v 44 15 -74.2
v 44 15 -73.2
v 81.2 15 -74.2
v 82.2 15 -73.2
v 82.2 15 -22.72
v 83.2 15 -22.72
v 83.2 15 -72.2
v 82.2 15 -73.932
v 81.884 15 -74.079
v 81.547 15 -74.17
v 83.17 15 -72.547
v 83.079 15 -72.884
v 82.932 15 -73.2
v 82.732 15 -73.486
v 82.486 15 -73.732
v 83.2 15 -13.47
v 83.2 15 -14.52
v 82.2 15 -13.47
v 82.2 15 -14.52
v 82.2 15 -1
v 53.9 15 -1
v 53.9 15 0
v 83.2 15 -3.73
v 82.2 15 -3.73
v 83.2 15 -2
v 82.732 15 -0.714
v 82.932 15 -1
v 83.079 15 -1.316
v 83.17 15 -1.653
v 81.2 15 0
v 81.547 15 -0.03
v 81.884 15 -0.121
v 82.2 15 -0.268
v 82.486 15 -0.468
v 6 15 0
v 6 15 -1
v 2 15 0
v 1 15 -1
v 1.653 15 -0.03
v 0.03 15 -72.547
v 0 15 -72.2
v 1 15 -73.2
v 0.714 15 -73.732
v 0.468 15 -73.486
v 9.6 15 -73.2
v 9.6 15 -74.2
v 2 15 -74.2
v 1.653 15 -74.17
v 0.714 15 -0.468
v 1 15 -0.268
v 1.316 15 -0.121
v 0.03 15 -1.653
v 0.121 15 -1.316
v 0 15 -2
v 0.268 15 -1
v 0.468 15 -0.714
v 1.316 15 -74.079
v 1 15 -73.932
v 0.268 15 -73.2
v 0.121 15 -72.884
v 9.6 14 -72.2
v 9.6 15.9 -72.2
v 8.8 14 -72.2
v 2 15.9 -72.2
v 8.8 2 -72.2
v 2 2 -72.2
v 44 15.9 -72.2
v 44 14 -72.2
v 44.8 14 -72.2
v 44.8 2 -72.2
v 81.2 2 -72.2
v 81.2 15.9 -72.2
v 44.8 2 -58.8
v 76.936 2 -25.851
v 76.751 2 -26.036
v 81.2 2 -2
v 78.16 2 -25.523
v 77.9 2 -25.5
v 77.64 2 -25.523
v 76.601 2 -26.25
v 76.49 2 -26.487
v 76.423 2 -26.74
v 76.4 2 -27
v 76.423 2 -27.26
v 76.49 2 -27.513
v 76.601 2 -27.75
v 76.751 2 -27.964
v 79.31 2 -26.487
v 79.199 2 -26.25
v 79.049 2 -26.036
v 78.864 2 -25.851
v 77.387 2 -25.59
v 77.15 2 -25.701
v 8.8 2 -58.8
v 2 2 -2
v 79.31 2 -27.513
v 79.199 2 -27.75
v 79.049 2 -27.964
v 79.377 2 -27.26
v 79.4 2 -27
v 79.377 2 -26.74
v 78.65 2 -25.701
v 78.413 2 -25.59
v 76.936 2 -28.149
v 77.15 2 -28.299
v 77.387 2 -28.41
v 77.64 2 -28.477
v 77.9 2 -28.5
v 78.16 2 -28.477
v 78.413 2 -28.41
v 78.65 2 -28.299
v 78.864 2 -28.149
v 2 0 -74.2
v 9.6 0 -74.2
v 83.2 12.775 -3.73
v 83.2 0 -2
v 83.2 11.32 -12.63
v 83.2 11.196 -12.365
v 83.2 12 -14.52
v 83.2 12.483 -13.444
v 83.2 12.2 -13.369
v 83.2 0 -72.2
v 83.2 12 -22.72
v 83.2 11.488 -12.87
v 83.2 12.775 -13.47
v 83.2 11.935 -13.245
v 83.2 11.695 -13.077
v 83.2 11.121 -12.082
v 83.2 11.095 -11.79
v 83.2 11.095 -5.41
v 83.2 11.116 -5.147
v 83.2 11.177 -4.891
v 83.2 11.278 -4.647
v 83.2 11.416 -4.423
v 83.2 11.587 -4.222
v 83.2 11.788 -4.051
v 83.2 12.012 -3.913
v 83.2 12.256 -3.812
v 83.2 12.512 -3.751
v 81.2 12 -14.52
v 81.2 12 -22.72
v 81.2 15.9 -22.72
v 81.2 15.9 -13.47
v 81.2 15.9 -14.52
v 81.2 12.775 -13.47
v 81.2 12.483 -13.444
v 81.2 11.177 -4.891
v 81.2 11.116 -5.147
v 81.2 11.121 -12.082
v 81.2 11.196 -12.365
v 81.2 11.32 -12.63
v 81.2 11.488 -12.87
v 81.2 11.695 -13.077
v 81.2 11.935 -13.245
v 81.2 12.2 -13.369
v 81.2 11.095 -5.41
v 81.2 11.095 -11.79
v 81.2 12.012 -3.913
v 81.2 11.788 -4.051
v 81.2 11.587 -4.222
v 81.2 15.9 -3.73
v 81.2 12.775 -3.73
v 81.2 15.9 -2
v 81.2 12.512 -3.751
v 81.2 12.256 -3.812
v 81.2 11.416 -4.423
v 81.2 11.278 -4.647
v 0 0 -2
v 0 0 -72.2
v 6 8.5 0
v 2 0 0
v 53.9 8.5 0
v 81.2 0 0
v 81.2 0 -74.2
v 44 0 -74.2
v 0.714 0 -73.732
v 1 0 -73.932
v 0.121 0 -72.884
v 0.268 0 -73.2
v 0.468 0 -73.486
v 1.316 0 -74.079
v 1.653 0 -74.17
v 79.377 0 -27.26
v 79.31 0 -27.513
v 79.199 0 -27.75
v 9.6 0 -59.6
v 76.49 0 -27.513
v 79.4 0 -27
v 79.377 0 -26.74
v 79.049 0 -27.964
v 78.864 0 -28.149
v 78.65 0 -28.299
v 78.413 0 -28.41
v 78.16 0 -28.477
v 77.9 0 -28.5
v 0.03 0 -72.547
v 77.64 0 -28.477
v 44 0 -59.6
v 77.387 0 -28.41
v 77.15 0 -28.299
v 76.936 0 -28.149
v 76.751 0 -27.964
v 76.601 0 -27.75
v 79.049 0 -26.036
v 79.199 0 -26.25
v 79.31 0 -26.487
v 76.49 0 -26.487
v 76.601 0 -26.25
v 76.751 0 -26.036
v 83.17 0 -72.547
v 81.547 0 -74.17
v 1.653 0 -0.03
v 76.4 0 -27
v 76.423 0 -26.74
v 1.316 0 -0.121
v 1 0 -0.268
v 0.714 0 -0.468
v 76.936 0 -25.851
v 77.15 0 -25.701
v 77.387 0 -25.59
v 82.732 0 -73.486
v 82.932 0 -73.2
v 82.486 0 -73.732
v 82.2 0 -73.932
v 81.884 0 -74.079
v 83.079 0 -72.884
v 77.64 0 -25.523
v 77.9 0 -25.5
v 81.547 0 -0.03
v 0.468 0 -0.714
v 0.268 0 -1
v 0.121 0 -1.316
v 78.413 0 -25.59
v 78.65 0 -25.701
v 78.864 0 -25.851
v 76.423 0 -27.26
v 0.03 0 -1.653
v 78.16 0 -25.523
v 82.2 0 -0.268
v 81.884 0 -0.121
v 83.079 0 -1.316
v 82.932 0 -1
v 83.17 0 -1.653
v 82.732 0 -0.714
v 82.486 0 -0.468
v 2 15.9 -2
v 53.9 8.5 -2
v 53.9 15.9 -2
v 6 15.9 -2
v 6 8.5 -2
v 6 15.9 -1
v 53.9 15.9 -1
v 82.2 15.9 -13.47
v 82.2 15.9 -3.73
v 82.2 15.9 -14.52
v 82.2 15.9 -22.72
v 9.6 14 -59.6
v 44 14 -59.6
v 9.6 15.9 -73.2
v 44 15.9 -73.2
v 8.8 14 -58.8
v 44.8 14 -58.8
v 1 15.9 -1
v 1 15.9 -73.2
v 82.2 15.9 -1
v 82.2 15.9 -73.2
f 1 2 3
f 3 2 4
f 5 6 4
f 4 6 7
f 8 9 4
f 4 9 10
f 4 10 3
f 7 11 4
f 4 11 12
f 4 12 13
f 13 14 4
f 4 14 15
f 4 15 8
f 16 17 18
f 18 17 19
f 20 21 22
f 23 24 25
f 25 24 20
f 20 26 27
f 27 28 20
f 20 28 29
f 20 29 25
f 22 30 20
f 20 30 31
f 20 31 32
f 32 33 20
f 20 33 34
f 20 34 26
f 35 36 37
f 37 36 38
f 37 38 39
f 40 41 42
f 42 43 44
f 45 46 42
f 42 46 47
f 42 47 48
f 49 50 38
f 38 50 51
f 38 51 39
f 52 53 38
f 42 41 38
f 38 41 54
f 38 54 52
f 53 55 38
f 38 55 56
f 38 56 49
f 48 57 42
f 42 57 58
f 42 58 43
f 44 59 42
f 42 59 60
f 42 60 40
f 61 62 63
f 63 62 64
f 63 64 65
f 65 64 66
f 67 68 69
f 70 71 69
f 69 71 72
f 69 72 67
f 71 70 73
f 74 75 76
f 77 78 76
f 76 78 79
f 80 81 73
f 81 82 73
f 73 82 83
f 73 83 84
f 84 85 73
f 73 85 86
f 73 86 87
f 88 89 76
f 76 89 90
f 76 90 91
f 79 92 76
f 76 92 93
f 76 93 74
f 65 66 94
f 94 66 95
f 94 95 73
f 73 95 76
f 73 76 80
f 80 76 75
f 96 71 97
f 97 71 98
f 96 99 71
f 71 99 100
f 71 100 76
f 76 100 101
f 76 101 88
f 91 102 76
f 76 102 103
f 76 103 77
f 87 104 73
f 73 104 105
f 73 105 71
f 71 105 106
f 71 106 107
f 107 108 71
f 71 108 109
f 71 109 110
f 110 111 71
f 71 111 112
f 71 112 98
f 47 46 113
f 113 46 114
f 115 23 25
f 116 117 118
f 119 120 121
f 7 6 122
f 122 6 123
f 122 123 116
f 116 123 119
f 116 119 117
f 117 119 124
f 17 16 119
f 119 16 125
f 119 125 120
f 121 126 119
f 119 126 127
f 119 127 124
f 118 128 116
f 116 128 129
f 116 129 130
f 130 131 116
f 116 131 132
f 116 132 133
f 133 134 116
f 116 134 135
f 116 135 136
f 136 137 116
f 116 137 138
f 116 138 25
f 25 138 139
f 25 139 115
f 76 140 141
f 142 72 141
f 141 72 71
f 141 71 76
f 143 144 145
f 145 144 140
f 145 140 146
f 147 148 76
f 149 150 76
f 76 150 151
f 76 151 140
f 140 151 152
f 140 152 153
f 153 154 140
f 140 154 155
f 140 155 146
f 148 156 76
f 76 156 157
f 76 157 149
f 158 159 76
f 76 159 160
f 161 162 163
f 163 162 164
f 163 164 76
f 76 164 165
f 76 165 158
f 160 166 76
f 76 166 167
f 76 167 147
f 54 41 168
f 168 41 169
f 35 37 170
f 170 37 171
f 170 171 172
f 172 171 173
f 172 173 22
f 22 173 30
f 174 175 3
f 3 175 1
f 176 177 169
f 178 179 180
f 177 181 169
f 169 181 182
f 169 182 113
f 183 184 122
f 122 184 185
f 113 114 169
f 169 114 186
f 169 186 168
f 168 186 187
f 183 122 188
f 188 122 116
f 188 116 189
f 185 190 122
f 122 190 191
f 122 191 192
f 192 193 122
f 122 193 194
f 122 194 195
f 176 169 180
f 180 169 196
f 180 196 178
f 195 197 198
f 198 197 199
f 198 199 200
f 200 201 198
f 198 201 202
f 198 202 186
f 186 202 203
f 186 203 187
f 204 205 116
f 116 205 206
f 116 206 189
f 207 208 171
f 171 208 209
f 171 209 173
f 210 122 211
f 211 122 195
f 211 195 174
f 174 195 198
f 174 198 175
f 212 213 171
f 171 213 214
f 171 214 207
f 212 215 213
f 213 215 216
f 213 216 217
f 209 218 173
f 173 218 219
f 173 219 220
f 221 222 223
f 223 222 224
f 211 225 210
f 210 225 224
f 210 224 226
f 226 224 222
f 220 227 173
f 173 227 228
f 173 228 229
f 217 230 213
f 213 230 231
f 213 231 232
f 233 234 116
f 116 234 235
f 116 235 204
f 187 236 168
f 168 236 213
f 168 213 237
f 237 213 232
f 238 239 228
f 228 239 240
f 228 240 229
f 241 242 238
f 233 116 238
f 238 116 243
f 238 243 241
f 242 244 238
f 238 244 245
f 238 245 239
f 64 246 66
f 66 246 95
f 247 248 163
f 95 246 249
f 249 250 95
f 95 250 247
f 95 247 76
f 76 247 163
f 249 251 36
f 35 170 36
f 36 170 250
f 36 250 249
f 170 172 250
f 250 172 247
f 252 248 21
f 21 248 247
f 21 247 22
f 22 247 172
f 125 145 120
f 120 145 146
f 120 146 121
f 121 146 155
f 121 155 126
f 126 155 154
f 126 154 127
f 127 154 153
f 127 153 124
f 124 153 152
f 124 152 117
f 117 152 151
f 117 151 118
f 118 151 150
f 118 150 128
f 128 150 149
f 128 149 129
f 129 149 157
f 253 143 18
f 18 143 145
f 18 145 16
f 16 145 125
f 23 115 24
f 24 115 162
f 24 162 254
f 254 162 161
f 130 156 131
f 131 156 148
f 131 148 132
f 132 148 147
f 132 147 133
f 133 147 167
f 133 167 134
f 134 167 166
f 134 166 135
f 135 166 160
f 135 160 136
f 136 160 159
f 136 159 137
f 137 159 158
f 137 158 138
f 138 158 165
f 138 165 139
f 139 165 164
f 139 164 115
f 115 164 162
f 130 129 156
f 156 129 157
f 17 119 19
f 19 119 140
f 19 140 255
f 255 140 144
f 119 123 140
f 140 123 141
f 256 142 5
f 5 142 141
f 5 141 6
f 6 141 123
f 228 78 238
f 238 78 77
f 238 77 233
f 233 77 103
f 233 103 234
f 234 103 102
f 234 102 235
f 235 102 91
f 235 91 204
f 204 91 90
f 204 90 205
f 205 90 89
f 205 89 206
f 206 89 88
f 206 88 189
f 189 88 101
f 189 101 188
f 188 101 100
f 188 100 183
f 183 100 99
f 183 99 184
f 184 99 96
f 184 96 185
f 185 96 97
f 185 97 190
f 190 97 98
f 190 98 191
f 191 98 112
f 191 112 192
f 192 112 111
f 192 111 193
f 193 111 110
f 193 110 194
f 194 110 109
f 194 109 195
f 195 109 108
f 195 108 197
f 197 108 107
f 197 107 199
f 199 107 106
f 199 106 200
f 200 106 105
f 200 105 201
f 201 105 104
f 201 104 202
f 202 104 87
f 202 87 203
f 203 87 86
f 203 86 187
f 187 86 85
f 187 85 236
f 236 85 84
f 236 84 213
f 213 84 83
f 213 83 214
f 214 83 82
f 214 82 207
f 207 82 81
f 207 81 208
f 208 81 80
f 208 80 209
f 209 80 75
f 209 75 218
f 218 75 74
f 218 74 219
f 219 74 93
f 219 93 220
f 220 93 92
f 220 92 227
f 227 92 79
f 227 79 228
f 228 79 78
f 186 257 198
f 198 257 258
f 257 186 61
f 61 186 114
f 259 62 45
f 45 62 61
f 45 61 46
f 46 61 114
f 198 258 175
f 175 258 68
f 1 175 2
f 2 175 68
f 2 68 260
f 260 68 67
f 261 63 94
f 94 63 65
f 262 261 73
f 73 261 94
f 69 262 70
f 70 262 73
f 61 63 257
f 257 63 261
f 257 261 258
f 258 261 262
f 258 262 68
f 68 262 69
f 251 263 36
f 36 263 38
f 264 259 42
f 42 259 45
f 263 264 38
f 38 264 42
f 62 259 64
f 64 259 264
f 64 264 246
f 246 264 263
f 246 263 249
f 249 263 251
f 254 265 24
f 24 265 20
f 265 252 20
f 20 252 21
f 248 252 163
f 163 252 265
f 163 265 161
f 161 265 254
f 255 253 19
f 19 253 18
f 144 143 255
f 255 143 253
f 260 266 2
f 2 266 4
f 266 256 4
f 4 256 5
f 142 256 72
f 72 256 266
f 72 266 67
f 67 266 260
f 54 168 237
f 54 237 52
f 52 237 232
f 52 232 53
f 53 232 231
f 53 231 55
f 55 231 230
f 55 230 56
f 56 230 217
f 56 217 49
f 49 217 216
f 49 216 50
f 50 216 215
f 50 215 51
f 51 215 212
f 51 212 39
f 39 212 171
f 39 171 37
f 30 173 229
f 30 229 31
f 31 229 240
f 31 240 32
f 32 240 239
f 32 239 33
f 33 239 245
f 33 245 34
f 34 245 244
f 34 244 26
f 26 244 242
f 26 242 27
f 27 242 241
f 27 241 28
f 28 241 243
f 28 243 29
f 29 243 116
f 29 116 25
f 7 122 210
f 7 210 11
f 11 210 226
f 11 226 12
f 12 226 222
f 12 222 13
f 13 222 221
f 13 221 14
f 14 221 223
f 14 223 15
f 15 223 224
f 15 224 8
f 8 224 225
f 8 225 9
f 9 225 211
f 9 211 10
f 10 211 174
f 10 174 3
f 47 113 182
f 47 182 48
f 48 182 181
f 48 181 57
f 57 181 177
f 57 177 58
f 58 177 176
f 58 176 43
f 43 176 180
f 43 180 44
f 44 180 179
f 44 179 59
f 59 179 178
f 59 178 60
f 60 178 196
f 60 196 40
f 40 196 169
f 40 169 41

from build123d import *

# Parameters (mm, degrees)
SKETCH1_W           = 83.2
SKETCH1_H           = 74.2
BOSS_EXTRUDE1_DEPTH = 15
SHELL1_T            = -2
SKETCH2_W           = 47.9
SKETCH2_H           = 6.5
CUT_EXTRUDE1_DEPTH  = 112.175896668
CUT_EXTRUDE3_DEPTH  = 112.013873007
SKETCH4_W           = 8.2
SKETCH4_H           = 3
CUT_EXTRUDE4_DEPTH  = 112.013873007
SKETCH5_R           = 1.5
CUT_EXTRUDE5_DEPTH  = 113.235823158
SKETCH6_W           = 34.4
SKETCH6_H           = 14.6
CUT_EXTRUDE6_DEPTH  = 113.485021225
BOSS_EXTRUDE2_DEPTH = 12
SKETCH9_W           = 1
SKETCH9_H           = 1.05
EXTRUDE_THIN1_DEPTH = 0.9
FILLET1_R           = 2


with BuildPart() as part:
    # Sketch1 → Boss-Extrude1 (new body)
    with BuildSketch(Plane(origin=(0, 0, 0), x_dir=(1, 0, 0), z_dir=(0, 1, 0))):
        with Locations((41.6, 37.1)):
            Rectangle(SKETCH1_W, SKETCH1_H)
    extrude(amount=BOSS_EXTRUDE1_DEPTH)

    # Shell1
    shell1_openings = [part.faces().sort_by_distance(p)[0] for p in [
        (41.6, 15, -37.1),
    ]]
    offset(amount=SHELL1_T, openings=shell1_openings, kind=Kind.INTERSECTION)

    # Sketch2 → Cut-Extrude1 (cut, through all)
    with BuildSketch(Plane(origin=(0, 0, -2), x_dir=(-1, 0, 0), z_dir=(0, 0, -1))):
        with Locations((-29.95, 11.75)):
            Rectangle(SKETCH2_W, SKETCH2_H)
    extrude(amount=-CUT_EXTRUDE1_DEPTH, mode=Mode.SUBTRACT)

    # Sketch3 → Cut-Extrude3 (cut, through all)
    with BuildSketch(Plane.ZY.offset(-81.2)):
        with BuildLine():
            Line((-13.47, 12.775001119), (-13.47, 13.375))
            Line((-13.47, 13.375), (-13.47, 15))
            Line((-13.47, 15), (-3.73, 15))
            Line((-3.73, 15), (-3.73, 13.375000473))
            Line((-3.73, 13.375000473), (-3.73, 12.774999514))
            ThreePointArc((-3.73, 12.774999514), (-4.222062075, 11.58705914), (-5.410003665, 11.095))
            Line((-5.410003665, 11.095), (-11.79000197, 11.095))
            ThreePointArc((-11.79000197, 11.095), (-12.977940485, 11.5870617), (-13.47, 12.775001119))
        make_face()
    extrude(amount=-CUT_EXTRUDE3_DEPTH, mode=Mode.SUBTRACT)

    # Sketch4 → Cut-Extrude4 (cut, through all)
    with BuildSketch(Plane.ZY.offset(-81.2)):
        with Locations((-18.62, 13.5)):
            Rectangle(SKETCH4_W, SKETCH4_H)
    extrude(amount=-CUT_EXTRUDE4_DEPTH, mode=Mode.SUBTRACT)

    # Sketch5 → Cut-Extrude5 (cut, through all)
    with BuildSketch(Plane(origin=(0, 2, 0), x_dir=(1, 0, 0), z_dir=(0, 1, 0))):
        with Locations(Location((77.9, 27, 0), (0, 0, 270))):
            Circle(SKETCH5_R)
    extrude(amount=-CUT_EXTRUDE5_DEPTH, mode=Mode.SUBTRACT)

    # Sketch6 → Cut-Extrude6 (cut, through all)
    with BuildSketch(Plane.XZ):
        with Locations((26.8, -66.9)):
            Rectangle(SKETCH6_W, SKETCH6_H)
    extrude(amount=-CUT_EXTRUDE6_DEPTH, mode=Mode.SUBTRACT)

    # Sketch7 → Boss-Extrude2 (add)
    with BuildSketch(Plane(origin=(0, 2, 0), x_dir=(1, 0, 0), z_dir=(0, 1, 0))):
        Polygon((44, 72.2), (44, 59.6), (9.6, 59.6), (9.6, 72.2), (8.8, 72.2), (8.8, 58.8), (44.8, 58.8), (44.8, 72.2), align=None)
    extrude(amount=BOSS_EXTRUDE2_DEPTH)

    # Sketch9 → Extrude-Thin1 (add)
    with BuildSketch(Plane(origin=(0, 15, 0), x_dir=(1, 0, 0), z_dir=(0, 1, 0))):
        Polygon((9.6, 72.2), (2, 72.2), (2, 2), (6, 2), (6, 1), (1, 1), (1, 73.2), (9.6, 73.2), align=None)
        Polygon((53.9, 2), (81.2, 2), (81.2, 3.73), (82.2, 3.73), (82.2, 1), (53.9, 1), align=None)
        with Locations((81.7, 13.995)):
            Rectangle(SKETCH9_W, SKETCH9_H)
        Polygon((81.2, 22.72), (81.2, 72.2), (44, 72.2), (44, 73.2), (82.2, 73.2), (82.2, 22.72), align=None)
    extrude(amount=EXTRUDE_THIN1_DEPTH)

    # Fillet1
    fillet1_edges = [part.edges().sort_by_distance(p)[0] for p in [
        (0, 7.5, -74.2),
        (83.2, 7.5, -74.2),
        (83.2, 7.5, 0),
        (0, 7.5, 0),
    ]]
    fillet(fillet1_edges, radius=FILLET1_R)


solid = part.part
